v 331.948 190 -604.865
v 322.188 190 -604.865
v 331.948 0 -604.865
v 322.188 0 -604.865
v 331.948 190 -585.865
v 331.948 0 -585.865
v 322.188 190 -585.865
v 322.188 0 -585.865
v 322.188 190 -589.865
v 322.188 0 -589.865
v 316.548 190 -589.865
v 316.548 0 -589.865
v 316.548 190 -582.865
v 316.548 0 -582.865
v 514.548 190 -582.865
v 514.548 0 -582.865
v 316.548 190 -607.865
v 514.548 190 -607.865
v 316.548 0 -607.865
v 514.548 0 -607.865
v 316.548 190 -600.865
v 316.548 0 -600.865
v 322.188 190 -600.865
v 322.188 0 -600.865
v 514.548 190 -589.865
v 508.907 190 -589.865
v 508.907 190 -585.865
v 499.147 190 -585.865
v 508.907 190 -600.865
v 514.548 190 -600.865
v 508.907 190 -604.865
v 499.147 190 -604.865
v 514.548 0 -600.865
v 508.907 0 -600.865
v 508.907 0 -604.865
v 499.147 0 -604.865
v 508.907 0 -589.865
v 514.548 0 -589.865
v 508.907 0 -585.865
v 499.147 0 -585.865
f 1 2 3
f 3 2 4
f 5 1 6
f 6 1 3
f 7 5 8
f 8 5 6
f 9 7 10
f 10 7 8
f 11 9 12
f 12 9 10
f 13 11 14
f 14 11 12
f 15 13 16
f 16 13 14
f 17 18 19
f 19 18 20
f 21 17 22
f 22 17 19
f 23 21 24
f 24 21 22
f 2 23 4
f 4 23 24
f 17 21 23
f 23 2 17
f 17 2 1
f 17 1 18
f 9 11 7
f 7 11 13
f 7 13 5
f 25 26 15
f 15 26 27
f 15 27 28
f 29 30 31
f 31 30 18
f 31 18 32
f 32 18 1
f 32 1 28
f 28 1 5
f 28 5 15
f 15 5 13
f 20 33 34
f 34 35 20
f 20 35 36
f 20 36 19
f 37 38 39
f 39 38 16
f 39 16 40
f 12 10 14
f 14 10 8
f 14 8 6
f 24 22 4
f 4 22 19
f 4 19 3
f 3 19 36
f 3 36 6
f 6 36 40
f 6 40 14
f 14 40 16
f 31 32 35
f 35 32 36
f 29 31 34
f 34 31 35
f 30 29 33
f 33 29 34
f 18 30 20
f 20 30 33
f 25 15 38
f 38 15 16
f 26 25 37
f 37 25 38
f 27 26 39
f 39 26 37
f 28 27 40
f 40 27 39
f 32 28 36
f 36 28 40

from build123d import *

# Parameters (mm, degrees)
ESTRUSIONE_ESTRUSIONE1_DEPTH = 190


with BuildPart() as part:
    # Schizzo2 → Estrusione-Estrusione1 (new body)
    with BuildSketch(Plane(origin=(0, 0, 0), x_dir=(1, 0, 0), z_dir=(0, 1, 0))):
        Polygon((415.547769121, 607.865337729), (331.895708168, 607.865337729), (322.188097577, 607.865337729), (316.547769121, 607.865337729), (316.547769121, 600.865337729), (322.188097577, 600.865337729), (322.188097577, 604.865337729), (331.948189583, 604.865337729), (331.948189583, 585.865337729), (322.188097577, 585.865337729), (322.188097577, 589.865337729), (316.547769121, 589.865337729), (316.547769121, 582.865337729), (415.547769121, 582.865337729), align=None)
    estrusione_estrusione1 = extrude(amount=ESTRUSIONE_ESTRUSIONE1_DEPTH)

    # Specchia1: Estrusione-Estrusione1 across plane
    add(estrusione_estrusione1.mirror(Plane(origin=(415.547769121, 190, 0), x_dir=(0, 0, 1), z_dir=(1, 0, 0))))


solid = part.part
